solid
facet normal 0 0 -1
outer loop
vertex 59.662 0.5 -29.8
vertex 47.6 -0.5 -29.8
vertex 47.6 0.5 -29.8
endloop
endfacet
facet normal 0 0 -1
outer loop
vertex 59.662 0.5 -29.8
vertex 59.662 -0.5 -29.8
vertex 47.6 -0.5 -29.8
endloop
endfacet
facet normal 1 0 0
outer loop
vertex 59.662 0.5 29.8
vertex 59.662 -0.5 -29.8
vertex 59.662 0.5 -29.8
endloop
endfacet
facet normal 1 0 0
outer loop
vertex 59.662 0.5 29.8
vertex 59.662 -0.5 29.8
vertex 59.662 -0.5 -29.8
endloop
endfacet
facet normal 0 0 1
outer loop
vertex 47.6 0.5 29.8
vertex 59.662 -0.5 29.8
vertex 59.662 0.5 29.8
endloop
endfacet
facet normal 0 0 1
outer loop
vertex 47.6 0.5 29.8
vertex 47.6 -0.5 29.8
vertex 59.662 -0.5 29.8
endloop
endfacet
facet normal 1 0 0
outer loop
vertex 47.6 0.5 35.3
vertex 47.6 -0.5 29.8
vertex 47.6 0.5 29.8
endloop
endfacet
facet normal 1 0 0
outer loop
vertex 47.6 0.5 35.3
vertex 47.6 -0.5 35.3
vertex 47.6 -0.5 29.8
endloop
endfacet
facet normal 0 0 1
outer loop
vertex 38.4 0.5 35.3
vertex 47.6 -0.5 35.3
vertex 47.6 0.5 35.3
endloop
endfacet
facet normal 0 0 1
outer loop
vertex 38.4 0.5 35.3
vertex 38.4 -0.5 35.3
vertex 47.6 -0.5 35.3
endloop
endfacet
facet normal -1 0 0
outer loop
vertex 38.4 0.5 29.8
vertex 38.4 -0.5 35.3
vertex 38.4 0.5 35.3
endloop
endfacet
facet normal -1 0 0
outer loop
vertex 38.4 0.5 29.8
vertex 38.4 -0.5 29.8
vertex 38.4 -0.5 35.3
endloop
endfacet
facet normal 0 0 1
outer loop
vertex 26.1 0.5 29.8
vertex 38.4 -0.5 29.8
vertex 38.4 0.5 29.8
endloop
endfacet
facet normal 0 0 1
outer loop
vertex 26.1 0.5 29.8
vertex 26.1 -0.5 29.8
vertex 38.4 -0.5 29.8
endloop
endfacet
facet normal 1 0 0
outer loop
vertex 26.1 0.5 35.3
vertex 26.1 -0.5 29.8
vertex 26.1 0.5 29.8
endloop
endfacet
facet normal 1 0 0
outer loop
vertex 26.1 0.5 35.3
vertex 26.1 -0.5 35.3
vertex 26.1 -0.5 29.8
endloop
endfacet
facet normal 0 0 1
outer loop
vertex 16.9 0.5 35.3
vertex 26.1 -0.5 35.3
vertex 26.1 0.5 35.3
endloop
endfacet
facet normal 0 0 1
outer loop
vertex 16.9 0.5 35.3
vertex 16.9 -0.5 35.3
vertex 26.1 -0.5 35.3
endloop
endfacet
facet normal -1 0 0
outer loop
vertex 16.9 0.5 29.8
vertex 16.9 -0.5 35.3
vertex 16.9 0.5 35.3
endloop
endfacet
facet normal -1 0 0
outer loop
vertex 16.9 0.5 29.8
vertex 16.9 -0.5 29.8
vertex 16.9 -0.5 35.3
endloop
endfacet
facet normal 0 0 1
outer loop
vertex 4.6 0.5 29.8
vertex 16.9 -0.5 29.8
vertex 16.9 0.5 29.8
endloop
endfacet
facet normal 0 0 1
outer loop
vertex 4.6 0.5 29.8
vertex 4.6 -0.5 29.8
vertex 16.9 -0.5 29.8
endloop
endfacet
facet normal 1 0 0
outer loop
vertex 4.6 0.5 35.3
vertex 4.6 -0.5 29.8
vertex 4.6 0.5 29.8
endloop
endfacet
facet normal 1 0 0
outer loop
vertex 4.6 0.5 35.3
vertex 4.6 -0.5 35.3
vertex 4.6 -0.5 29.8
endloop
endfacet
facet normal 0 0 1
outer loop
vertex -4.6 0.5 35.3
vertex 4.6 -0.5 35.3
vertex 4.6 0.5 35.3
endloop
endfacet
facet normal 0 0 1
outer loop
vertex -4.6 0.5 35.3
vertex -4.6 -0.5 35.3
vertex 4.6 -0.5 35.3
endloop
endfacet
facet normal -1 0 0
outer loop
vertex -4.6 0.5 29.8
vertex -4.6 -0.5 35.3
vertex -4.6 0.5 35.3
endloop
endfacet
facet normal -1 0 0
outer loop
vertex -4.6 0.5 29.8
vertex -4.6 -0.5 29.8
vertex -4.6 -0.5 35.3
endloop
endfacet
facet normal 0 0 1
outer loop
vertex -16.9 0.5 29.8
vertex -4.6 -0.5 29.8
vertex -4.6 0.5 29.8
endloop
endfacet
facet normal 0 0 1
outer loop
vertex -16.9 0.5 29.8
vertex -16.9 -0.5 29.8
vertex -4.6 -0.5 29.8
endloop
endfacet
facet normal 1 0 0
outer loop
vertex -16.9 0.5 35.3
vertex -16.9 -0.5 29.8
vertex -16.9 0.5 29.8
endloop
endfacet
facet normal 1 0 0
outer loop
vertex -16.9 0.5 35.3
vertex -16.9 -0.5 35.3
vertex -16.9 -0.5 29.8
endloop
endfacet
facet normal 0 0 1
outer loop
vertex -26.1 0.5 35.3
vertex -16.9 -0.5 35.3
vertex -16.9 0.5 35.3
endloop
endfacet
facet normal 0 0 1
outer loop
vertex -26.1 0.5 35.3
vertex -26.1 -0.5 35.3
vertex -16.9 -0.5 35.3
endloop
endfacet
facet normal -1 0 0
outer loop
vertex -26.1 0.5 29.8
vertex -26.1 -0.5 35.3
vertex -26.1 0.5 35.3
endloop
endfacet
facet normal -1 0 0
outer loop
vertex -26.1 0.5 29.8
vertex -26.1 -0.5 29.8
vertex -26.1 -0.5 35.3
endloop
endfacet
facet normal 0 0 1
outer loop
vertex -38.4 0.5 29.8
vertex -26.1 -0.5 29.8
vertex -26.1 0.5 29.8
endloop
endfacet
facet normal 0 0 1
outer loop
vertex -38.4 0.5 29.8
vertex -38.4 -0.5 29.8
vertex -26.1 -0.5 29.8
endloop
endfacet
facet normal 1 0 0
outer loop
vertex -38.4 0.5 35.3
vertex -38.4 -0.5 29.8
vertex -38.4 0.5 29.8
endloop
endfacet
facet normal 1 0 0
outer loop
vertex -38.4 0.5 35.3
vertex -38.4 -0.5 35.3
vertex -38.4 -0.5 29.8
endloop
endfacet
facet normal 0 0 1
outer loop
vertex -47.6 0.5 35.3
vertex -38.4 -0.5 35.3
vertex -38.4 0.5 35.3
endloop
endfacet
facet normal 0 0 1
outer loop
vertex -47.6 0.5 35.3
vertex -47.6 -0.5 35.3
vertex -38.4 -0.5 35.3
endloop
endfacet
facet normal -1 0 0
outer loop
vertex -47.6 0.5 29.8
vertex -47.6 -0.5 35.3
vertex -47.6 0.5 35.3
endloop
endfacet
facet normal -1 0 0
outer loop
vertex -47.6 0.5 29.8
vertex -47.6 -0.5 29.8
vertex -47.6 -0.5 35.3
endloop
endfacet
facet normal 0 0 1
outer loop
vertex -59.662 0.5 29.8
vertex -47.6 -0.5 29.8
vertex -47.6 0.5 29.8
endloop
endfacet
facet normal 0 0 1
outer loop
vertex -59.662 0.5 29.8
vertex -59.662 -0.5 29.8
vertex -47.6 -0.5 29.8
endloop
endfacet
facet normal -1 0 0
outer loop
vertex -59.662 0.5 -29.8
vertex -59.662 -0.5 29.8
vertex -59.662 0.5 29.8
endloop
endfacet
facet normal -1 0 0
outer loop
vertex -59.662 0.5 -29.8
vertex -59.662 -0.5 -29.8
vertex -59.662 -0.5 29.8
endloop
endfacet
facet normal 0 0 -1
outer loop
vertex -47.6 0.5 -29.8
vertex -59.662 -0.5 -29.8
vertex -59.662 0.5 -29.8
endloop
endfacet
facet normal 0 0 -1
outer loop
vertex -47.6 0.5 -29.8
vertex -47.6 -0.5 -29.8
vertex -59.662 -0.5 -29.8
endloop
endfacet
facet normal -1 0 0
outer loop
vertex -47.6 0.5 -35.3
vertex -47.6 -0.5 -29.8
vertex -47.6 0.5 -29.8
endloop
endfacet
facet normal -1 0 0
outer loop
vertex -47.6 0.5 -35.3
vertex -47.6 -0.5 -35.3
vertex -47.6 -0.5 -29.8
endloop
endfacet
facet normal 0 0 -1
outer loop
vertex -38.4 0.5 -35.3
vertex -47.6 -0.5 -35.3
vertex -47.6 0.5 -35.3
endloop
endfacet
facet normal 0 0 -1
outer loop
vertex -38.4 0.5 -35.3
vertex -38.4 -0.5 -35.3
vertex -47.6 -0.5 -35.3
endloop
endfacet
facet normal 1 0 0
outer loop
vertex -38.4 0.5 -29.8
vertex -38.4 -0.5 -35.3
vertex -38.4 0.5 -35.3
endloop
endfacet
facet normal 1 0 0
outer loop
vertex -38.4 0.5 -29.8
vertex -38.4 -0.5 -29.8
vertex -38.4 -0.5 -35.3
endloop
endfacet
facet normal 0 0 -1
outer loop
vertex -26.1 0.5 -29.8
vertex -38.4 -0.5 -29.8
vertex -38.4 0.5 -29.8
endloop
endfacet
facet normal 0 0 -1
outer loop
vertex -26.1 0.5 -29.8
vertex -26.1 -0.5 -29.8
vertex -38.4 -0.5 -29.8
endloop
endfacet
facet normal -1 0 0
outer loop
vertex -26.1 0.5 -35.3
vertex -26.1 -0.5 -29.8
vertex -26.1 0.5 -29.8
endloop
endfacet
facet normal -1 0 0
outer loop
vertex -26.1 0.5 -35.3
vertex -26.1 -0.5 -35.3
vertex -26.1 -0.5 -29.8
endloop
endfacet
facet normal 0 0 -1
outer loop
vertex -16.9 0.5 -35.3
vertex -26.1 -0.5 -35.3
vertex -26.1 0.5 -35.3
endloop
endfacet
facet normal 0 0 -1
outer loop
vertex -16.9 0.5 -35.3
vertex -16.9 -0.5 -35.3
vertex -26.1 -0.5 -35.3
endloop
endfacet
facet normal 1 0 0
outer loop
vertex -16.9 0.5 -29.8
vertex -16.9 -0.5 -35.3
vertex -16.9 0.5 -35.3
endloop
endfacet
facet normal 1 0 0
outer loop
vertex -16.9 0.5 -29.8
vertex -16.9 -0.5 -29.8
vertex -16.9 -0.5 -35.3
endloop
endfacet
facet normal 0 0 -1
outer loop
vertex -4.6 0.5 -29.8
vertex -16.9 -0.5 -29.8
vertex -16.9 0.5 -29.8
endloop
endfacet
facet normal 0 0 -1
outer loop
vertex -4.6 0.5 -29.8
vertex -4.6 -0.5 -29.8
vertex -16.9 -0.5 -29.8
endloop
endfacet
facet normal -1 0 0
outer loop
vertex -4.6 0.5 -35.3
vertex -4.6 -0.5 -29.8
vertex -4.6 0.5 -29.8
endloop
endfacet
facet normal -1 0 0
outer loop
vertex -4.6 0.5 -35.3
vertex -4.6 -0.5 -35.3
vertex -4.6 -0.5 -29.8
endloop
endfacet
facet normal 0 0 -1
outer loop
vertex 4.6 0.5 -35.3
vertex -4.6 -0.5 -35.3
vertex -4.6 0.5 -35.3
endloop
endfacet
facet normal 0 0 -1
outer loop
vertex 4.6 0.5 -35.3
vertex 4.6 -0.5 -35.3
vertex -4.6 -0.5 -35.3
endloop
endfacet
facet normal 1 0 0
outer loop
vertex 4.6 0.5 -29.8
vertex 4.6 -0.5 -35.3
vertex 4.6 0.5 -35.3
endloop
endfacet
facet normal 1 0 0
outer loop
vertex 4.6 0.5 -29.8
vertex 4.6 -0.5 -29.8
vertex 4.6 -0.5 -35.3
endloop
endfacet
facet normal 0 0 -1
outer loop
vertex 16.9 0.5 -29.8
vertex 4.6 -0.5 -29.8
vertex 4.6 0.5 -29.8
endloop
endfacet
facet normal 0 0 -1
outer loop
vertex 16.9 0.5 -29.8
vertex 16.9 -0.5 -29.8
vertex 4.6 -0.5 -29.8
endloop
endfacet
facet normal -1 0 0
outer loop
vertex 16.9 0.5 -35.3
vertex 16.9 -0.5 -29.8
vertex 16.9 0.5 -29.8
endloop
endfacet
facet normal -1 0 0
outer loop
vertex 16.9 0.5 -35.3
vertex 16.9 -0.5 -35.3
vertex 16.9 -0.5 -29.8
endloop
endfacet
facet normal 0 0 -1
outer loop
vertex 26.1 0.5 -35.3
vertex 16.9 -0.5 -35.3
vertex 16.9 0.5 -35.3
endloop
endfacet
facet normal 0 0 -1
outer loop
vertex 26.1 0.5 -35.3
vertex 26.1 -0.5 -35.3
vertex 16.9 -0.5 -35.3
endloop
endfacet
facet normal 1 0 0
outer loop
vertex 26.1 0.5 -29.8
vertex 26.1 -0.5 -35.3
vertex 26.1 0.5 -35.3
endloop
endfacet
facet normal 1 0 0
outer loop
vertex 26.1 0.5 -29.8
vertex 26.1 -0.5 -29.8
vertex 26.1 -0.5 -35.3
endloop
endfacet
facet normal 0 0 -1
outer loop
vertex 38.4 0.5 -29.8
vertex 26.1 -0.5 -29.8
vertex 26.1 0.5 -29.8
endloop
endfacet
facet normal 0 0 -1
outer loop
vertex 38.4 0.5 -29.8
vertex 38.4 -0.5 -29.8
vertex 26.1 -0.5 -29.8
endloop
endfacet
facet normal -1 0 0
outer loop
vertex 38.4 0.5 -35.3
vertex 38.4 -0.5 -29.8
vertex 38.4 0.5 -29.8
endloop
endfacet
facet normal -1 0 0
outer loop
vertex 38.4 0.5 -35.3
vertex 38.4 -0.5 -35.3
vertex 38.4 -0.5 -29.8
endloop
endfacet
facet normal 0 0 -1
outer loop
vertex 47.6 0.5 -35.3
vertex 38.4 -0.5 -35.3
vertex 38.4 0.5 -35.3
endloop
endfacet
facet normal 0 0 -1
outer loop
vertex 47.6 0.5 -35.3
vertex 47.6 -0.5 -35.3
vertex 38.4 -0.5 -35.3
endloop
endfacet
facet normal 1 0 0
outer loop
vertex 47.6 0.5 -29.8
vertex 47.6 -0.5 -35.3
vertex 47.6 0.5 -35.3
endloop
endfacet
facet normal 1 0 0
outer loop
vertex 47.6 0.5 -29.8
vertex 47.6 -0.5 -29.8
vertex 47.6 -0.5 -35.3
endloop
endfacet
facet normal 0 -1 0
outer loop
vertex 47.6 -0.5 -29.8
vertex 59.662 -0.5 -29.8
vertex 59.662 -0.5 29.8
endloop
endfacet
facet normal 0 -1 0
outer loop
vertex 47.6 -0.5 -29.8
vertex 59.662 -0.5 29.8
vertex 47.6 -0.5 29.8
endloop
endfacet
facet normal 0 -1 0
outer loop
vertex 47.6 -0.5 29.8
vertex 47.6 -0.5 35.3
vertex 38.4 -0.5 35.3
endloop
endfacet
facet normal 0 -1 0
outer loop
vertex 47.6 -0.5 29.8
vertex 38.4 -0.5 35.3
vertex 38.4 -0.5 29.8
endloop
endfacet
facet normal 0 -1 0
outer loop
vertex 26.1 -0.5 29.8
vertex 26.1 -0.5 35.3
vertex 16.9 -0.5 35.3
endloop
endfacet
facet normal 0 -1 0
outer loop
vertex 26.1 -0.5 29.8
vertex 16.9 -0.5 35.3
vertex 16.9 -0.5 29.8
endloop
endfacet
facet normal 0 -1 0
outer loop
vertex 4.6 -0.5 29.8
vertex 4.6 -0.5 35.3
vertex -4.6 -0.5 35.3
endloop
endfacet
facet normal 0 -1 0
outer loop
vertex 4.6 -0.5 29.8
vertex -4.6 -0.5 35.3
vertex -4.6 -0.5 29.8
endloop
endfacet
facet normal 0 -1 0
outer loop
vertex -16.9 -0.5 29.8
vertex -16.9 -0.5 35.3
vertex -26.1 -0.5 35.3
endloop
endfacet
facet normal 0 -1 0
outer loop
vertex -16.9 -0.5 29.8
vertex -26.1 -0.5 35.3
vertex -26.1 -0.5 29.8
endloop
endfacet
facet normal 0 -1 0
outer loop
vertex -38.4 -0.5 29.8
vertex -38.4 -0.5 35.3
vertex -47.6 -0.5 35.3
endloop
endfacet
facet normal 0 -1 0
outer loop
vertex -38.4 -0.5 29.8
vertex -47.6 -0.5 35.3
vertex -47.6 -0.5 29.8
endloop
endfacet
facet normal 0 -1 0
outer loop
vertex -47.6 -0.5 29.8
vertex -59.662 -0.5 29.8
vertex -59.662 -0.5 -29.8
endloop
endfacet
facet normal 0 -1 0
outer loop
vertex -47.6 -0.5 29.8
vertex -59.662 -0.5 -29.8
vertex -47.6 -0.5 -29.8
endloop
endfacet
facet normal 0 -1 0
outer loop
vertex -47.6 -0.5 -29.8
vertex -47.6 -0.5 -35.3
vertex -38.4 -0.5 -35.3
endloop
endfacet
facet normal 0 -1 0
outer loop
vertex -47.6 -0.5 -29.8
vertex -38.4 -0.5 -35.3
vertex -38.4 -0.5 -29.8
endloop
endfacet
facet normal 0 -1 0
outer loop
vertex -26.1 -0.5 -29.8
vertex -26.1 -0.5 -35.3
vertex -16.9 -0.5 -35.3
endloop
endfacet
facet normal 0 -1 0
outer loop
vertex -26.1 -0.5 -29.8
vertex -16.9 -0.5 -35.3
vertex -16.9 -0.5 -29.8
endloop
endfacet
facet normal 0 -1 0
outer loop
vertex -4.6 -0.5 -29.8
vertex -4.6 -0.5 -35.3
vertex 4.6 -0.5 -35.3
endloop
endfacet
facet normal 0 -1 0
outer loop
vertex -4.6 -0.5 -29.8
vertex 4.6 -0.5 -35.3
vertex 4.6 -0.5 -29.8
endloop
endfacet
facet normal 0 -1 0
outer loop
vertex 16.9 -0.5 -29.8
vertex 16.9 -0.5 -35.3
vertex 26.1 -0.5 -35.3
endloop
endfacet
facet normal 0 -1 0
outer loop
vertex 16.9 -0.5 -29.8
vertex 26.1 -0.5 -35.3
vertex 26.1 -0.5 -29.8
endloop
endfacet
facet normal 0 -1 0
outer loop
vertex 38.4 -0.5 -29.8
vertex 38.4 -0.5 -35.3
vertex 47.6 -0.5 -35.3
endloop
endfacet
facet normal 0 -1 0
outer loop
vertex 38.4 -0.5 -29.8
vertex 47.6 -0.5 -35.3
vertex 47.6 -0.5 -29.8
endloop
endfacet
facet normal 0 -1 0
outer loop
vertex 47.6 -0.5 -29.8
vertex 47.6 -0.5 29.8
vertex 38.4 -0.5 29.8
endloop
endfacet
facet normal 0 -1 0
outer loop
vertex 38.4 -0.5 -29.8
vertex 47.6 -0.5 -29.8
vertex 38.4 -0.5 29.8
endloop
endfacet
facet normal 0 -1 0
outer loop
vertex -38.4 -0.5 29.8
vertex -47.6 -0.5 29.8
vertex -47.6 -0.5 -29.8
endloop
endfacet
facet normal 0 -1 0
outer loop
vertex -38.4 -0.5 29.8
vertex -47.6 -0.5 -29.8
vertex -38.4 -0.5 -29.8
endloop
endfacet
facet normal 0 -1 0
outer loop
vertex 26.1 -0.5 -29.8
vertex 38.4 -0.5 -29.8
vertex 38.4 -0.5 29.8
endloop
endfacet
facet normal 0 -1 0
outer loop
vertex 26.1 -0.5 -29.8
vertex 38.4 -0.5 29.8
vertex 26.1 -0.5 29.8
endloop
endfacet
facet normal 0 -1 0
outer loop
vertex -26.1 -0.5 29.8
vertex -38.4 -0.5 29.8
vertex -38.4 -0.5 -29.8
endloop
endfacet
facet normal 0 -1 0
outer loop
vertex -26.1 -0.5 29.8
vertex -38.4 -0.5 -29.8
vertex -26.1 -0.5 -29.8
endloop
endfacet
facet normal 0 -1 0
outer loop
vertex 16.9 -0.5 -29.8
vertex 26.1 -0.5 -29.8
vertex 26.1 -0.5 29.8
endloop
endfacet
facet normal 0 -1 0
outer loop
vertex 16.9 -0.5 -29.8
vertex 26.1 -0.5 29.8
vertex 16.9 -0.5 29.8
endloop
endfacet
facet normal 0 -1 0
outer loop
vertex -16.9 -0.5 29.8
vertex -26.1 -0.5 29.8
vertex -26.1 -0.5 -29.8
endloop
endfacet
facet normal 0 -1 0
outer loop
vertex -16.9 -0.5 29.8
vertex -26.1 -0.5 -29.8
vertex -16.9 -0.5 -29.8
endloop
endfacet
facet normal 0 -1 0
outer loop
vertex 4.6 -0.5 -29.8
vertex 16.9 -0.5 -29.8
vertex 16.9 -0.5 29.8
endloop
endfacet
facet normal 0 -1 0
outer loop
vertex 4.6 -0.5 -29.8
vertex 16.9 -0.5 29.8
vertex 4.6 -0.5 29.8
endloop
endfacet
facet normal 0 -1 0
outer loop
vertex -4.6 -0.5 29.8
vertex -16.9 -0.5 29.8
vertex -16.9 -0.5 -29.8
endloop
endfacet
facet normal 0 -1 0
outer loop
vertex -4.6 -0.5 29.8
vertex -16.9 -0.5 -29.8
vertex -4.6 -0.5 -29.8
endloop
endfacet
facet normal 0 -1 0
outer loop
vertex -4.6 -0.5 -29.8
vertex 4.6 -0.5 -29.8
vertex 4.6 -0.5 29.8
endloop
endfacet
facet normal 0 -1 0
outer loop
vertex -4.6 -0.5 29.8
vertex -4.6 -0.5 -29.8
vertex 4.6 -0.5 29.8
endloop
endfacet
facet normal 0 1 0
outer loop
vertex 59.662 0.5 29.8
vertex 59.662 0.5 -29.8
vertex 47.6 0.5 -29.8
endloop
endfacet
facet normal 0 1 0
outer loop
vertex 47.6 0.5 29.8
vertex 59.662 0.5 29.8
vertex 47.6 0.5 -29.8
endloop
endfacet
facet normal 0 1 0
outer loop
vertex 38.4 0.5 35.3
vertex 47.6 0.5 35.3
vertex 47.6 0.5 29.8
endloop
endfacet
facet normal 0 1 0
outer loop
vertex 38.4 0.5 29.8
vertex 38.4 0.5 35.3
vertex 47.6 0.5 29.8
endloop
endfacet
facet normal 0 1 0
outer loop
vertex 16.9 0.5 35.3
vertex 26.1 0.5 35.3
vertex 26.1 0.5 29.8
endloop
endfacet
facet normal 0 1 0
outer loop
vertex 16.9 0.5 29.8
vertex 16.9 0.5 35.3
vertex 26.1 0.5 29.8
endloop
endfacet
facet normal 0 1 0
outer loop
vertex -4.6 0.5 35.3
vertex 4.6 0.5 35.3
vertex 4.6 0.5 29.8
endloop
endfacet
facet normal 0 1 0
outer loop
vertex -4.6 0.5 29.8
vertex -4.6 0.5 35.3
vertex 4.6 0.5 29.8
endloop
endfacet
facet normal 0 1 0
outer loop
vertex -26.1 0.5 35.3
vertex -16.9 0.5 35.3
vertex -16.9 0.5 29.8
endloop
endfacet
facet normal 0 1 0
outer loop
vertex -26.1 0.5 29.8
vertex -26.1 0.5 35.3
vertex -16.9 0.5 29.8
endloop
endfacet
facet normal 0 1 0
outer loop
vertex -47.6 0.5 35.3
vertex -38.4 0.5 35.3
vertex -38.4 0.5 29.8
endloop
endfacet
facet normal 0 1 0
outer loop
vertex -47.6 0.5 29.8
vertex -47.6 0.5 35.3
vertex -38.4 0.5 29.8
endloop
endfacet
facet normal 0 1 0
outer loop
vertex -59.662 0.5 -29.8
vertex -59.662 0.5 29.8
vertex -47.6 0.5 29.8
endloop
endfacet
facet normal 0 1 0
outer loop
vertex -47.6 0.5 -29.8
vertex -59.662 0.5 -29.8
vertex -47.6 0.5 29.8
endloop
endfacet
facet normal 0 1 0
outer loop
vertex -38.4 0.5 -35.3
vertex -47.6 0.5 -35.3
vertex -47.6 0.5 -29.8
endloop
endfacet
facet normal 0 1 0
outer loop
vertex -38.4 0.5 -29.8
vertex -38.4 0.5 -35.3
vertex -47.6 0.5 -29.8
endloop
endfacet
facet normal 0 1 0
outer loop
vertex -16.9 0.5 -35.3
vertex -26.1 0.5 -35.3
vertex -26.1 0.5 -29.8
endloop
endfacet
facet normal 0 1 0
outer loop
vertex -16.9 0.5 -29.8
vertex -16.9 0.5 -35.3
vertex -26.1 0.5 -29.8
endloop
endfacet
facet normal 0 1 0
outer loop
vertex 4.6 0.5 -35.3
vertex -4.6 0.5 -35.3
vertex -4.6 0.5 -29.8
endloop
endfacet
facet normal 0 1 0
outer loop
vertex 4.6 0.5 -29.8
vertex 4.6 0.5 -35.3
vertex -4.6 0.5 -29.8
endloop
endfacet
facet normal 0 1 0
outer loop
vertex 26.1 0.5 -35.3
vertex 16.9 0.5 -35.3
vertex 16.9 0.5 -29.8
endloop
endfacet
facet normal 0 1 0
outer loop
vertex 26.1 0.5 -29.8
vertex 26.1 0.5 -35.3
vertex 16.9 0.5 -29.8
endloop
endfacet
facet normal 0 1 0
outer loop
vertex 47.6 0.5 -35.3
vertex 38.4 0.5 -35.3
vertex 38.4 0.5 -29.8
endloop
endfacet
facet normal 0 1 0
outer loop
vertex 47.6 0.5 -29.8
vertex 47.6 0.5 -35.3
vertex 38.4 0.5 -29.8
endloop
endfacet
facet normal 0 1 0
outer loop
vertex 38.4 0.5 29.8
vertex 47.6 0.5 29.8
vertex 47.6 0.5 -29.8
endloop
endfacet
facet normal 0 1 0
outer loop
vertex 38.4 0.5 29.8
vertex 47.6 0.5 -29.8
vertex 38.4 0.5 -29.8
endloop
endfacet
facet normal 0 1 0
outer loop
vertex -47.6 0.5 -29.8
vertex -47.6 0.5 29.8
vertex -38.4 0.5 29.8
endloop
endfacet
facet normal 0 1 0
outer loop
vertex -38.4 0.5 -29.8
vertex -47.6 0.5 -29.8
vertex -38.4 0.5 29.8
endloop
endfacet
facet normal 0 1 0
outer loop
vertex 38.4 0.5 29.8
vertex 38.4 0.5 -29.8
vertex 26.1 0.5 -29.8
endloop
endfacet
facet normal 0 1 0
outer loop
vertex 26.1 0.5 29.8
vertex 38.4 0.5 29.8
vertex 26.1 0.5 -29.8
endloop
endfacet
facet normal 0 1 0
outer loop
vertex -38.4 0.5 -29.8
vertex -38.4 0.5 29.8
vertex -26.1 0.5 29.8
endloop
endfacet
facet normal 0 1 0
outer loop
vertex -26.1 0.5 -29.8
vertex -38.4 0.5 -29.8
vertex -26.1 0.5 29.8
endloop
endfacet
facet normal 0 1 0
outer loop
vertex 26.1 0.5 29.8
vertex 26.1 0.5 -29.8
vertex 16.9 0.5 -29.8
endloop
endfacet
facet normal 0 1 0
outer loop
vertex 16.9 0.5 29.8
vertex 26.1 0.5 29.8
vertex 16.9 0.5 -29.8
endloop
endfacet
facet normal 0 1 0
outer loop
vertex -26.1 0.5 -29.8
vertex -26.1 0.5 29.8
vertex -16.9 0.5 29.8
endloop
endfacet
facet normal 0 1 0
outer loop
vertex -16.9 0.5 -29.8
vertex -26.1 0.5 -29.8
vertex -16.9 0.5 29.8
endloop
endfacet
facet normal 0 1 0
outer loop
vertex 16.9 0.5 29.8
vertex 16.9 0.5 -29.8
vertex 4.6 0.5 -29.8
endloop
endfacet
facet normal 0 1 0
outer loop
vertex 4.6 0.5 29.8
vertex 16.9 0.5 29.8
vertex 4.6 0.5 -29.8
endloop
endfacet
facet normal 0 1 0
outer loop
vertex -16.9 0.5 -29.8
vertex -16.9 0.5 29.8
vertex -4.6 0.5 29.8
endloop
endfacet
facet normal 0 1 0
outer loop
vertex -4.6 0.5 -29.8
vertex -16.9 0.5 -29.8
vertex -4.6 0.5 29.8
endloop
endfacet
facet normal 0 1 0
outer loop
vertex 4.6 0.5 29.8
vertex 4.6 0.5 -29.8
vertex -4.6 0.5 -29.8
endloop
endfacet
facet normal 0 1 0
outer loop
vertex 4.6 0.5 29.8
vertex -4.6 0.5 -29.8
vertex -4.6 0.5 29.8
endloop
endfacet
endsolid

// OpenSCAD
// file: parameters.scad
$fn = 64;

h = 70.6; // cell max height
d = 21.5; // cell max diameter

available_y = 19.5 * 25.4;

aluminum_thickness = 0.04 * 25.4; // 5052 H32 Aluminum for the case
case_dim_x = 137; // external dimensions, must be 137 to match the EIG battery box
case_dim_y = 228; // 235 is the max, can be smaller
case_dim_z = 355; // 

external_walls = 3; // acrylic

base_plate_dim_x = case_dim_x - 2 * external_walls;
base_plate_dim_y = case_dim_y - 2 * external_walls;

cell_isolation = 1; // minimum separation between cells not in parallel

plate_disk_dia = 14;
copper_width = 10;
copper_length = 9.8 * d;

nickel_width = 8;
nickel_length = 5.8 * d; // length of the nickel strip to connect 6 cells

plate_slot_length = 8;
plate_slot_width = 0.7;
copper_plate_thickness = 0.15;
nickel_plate_thickness = 0.15;
strips_pocket_height = 1;

plates_thickness = copper_plate_thickness + nickel_plate_thickness;

bulkhead_y_thickness = 15;
bulkhead_z_thickness = 5;

strips_clearance = 0.5;
holder_pocket_height = 5;
holder_walls = 0.5;

exploded = $t * 50;

inlet_stack_height = 20;
outlet_walls = 3;

m3_insert_od = 4.6; // 5mm OD minus some plastic to melt
m3_insert_length = 4 + 4; // 4 mm more than the insert length

m4_insert_od = 5.3; // this is the diameter of the hole, it must be smaller than the insert’s maximum OD
m4_insert_length = 8; // 2 mm more than the insert length

cell_holder_stack_height = 0.3;

strips_insulator_stack_height = 1.2;

module_60_height = h + cell_holder_stack_height * 2 + strips_insulator_stack_height * 2 + 7 * exploded;

large_spacer_stack_height = 7;

module_120_height = module_60_height * 2 + large_spacer_stack_height + exploded;

module_240_height = module_120_height * 2 + large_spacer_stack_height + exploded;

outlet_height = 10;

inlet_height = 20 + external_walls;

inlet_walls = 3;

panel_height = module_240_height + inlet_height;

ring_terminal_cutout_depth = 3;
// main file
include <parameters.scad>

module separator2d() {
  difference() {
    square(
      [
        5.55 * d,
        h,
      ], center=true
    );
    for (x = [-2.5:2.5], y = [-1, 1]) {
      translate(
        [
          x * d,
          y * (50 + h / 2 - holder_pocket_height - 0.5),
        ]
      )
        square(
          [
            copper_width + 2 * strips_clearance + holder_walls * 2 + 0.3,
            100,
          ], center=true
        );
    }
  }
}

module separator() {
  rotate([90, 0, 0])
    linear_extrude(height=cell_isolation, center=true) separator2d();
}

module separators() {
  for (y = [-3:2:3]) {
    translate([0, y * (d + cell_isolation / 2), 0]) {
      separator();
    }
  }
}

separator();
